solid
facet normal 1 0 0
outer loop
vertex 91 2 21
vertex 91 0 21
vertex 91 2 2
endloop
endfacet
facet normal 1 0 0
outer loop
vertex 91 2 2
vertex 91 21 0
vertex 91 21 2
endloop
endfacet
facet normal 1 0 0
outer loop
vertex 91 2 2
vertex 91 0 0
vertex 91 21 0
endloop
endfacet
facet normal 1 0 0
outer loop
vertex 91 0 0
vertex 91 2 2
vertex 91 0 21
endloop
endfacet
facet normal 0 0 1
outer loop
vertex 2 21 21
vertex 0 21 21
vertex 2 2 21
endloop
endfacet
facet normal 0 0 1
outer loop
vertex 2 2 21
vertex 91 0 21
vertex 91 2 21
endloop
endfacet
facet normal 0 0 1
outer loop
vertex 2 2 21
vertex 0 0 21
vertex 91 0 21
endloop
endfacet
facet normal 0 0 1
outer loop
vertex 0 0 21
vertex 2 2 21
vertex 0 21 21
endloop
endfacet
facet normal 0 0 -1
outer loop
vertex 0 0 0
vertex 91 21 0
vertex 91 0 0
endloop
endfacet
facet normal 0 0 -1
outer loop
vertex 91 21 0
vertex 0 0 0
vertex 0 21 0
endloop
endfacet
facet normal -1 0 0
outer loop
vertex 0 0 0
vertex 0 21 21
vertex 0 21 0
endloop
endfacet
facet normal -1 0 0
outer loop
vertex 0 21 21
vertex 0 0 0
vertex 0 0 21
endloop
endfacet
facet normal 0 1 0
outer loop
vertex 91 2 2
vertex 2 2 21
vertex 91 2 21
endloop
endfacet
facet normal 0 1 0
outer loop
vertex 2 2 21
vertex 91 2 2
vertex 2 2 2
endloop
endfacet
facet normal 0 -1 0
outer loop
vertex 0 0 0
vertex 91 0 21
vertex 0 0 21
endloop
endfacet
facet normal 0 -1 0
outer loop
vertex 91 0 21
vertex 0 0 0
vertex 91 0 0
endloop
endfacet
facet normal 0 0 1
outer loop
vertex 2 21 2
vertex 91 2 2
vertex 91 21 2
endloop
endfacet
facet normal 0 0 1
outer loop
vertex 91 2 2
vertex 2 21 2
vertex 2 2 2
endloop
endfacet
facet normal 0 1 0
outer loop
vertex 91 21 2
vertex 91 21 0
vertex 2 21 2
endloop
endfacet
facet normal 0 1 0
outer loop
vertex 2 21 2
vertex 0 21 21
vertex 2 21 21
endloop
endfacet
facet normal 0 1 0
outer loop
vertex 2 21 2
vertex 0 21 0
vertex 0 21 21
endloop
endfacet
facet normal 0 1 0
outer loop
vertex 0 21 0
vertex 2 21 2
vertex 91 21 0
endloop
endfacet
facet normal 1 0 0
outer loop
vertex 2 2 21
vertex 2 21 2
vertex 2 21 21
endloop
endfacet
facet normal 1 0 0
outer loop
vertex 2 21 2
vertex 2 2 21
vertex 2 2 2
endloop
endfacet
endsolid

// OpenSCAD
DepthOfCSM=38;
WidthOfCSM=89;
Thickness=2;

union() {
cube([WidthOfCSM+Thickness,Thickness,(DepthOfCSM/2)+Thickness]);
//color("blue")
cube([WidthOfCSM+Thickness,(DepthOfCSM/2)+Thickness,Thickness]);
//color("red")
cube([Thickness,(DepthOfCSM/2)+Thickness,(DepthOfCSM/2)+Thickness]);
}
